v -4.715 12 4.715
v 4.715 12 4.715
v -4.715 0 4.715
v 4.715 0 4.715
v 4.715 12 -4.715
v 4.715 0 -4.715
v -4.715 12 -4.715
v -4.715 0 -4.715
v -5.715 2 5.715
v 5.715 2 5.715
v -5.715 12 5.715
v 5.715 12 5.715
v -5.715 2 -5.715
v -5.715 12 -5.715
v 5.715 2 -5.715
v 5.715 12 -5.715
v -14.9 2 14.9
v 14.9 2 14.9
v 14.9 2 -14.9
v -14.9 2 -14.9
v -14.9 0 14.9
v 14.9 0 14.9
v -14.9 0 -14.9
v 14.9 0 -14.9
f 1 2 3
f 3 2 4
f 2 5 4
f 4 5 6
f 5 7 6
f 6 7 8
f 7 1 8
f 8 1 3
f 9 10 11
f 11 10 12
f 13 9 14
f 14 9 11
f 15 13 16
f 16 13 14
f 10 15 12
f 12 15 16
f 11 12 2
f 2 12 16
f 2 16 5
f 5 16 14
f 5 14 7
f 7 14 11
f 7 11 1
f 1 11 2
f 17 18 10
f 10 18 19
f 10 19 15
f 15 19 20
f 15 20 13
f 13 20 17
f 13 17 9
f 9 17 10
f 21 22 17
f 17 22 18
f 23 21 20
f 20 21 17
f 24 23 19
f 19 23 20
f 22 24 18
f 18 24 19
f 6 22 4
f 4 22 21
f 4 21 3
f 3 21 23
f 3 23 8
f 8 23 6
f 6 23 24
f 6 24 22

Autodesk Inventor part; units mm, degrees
ref_plane "YZ Plane" through (0, 0, 0) normal (1, 0, 0) x (0, 1, 0)
ref_plane "XZ Plane" through (0, 0, 0) normal (0, 1, 0) x (-1, 0, 0)
ref_plane "XY Plane" through (0, 0, 0) normal (0, 0, 1) x (1, 0, 0)
sketch "Sketch1" plane through (0, 0, 0) normal (0, 1, 0) x (-1, 0, 0)
  line L0 (14.9, 14.9) -> (-14.9, 14.9)
  line L1 (-14.9, 14.9) -> (-14.9, -14.9)
  line L2 (-14.9, -14.9) -> (14.9, -14.9)
  line L3 (14.9, -14.9) -> (14.9, 14.9)
  point P0 (0, 0)
  dimension "d0" = 29.8
  dimension "d1" = 29.8
  dimension "d2" = 14.9
  dimension "d3" = 14.9
extrude "Extrusion1" add sketch "Sketch1" along normal blind 2
sketch "Sketch2" plane through (0, 2, 0) normal (0, 1, 0) x (1, 0, 0)
  line L0 (-5.715, -5.715) -> (5.715, -5.715)
  line L1 (5.715, -5.715) -> (5.715, 5.715)
  line L2 (5.715, 5.715) -> (-5.715, 5.715)
  line L3 (-5.715, 5.715) -> (-5.715, -5.715)
  line L4 (-4.715, -4.715) -> (4.715, -4.715)
  line L5 (4.715, -4.715) -> (4.715, 4.715)
  line L6 (4.715, 4.715) -> (-4.715, 4.715)
  line L7 (-4.715, 4.715) -> (-4.715, -4.715)
  line L8 (14.9, 14.9) -> (-14.9, 14.9) projected
  point P0 (0, 0)
  dimension "d6" = 11.43
  dimension "d7" = 11.43
  dimension "d8" = 5.715
  dimension "d9" = 5.715
  dimension "d10" = 1
  dimension "d11" = 1
  dimension "d12" = 1
  dimension "d13" = 1
  dimension "d18" = 9.185
extrude "Extrusion2" add sketch "Sketch2" along normal blind 10
sketch "Sketch3" plane through (0, 2, 0) normal (0, 1, 0) x (1, 0, 0)
  line L0 (4.715, 4.715) -> (-4.715, 4.715) projected
  line L1 (4.715, -4.715) -> (4.715, 4.715) projected
  line L2 (-4.715, 4.715) -> (4.715, 4.715)
  line L3 (4.715, 4.715) -> (4.715, -4.715)
  line L4 (4.715, -4.715) -> (-4.715, -4.715)
  line L5 (-4.715, -4.715) -> (-4.715, 4.715)
  point P0 (0, 0)
extrude "Extrusion3" cut sketch "Sketch3" against normal blind 10
equation "\"d1\" = d0"
equation "\"d2\" = 0.5 * d1"
equation "\"d3\" = 0.5 * d1"
equation "\"d7\" = d6"
equation "\"d8\" = 0.5 * d6"
equation "\"d9\" = 0.5 * d6"
properties part number "Motor_Key_Bearing_3_3"
